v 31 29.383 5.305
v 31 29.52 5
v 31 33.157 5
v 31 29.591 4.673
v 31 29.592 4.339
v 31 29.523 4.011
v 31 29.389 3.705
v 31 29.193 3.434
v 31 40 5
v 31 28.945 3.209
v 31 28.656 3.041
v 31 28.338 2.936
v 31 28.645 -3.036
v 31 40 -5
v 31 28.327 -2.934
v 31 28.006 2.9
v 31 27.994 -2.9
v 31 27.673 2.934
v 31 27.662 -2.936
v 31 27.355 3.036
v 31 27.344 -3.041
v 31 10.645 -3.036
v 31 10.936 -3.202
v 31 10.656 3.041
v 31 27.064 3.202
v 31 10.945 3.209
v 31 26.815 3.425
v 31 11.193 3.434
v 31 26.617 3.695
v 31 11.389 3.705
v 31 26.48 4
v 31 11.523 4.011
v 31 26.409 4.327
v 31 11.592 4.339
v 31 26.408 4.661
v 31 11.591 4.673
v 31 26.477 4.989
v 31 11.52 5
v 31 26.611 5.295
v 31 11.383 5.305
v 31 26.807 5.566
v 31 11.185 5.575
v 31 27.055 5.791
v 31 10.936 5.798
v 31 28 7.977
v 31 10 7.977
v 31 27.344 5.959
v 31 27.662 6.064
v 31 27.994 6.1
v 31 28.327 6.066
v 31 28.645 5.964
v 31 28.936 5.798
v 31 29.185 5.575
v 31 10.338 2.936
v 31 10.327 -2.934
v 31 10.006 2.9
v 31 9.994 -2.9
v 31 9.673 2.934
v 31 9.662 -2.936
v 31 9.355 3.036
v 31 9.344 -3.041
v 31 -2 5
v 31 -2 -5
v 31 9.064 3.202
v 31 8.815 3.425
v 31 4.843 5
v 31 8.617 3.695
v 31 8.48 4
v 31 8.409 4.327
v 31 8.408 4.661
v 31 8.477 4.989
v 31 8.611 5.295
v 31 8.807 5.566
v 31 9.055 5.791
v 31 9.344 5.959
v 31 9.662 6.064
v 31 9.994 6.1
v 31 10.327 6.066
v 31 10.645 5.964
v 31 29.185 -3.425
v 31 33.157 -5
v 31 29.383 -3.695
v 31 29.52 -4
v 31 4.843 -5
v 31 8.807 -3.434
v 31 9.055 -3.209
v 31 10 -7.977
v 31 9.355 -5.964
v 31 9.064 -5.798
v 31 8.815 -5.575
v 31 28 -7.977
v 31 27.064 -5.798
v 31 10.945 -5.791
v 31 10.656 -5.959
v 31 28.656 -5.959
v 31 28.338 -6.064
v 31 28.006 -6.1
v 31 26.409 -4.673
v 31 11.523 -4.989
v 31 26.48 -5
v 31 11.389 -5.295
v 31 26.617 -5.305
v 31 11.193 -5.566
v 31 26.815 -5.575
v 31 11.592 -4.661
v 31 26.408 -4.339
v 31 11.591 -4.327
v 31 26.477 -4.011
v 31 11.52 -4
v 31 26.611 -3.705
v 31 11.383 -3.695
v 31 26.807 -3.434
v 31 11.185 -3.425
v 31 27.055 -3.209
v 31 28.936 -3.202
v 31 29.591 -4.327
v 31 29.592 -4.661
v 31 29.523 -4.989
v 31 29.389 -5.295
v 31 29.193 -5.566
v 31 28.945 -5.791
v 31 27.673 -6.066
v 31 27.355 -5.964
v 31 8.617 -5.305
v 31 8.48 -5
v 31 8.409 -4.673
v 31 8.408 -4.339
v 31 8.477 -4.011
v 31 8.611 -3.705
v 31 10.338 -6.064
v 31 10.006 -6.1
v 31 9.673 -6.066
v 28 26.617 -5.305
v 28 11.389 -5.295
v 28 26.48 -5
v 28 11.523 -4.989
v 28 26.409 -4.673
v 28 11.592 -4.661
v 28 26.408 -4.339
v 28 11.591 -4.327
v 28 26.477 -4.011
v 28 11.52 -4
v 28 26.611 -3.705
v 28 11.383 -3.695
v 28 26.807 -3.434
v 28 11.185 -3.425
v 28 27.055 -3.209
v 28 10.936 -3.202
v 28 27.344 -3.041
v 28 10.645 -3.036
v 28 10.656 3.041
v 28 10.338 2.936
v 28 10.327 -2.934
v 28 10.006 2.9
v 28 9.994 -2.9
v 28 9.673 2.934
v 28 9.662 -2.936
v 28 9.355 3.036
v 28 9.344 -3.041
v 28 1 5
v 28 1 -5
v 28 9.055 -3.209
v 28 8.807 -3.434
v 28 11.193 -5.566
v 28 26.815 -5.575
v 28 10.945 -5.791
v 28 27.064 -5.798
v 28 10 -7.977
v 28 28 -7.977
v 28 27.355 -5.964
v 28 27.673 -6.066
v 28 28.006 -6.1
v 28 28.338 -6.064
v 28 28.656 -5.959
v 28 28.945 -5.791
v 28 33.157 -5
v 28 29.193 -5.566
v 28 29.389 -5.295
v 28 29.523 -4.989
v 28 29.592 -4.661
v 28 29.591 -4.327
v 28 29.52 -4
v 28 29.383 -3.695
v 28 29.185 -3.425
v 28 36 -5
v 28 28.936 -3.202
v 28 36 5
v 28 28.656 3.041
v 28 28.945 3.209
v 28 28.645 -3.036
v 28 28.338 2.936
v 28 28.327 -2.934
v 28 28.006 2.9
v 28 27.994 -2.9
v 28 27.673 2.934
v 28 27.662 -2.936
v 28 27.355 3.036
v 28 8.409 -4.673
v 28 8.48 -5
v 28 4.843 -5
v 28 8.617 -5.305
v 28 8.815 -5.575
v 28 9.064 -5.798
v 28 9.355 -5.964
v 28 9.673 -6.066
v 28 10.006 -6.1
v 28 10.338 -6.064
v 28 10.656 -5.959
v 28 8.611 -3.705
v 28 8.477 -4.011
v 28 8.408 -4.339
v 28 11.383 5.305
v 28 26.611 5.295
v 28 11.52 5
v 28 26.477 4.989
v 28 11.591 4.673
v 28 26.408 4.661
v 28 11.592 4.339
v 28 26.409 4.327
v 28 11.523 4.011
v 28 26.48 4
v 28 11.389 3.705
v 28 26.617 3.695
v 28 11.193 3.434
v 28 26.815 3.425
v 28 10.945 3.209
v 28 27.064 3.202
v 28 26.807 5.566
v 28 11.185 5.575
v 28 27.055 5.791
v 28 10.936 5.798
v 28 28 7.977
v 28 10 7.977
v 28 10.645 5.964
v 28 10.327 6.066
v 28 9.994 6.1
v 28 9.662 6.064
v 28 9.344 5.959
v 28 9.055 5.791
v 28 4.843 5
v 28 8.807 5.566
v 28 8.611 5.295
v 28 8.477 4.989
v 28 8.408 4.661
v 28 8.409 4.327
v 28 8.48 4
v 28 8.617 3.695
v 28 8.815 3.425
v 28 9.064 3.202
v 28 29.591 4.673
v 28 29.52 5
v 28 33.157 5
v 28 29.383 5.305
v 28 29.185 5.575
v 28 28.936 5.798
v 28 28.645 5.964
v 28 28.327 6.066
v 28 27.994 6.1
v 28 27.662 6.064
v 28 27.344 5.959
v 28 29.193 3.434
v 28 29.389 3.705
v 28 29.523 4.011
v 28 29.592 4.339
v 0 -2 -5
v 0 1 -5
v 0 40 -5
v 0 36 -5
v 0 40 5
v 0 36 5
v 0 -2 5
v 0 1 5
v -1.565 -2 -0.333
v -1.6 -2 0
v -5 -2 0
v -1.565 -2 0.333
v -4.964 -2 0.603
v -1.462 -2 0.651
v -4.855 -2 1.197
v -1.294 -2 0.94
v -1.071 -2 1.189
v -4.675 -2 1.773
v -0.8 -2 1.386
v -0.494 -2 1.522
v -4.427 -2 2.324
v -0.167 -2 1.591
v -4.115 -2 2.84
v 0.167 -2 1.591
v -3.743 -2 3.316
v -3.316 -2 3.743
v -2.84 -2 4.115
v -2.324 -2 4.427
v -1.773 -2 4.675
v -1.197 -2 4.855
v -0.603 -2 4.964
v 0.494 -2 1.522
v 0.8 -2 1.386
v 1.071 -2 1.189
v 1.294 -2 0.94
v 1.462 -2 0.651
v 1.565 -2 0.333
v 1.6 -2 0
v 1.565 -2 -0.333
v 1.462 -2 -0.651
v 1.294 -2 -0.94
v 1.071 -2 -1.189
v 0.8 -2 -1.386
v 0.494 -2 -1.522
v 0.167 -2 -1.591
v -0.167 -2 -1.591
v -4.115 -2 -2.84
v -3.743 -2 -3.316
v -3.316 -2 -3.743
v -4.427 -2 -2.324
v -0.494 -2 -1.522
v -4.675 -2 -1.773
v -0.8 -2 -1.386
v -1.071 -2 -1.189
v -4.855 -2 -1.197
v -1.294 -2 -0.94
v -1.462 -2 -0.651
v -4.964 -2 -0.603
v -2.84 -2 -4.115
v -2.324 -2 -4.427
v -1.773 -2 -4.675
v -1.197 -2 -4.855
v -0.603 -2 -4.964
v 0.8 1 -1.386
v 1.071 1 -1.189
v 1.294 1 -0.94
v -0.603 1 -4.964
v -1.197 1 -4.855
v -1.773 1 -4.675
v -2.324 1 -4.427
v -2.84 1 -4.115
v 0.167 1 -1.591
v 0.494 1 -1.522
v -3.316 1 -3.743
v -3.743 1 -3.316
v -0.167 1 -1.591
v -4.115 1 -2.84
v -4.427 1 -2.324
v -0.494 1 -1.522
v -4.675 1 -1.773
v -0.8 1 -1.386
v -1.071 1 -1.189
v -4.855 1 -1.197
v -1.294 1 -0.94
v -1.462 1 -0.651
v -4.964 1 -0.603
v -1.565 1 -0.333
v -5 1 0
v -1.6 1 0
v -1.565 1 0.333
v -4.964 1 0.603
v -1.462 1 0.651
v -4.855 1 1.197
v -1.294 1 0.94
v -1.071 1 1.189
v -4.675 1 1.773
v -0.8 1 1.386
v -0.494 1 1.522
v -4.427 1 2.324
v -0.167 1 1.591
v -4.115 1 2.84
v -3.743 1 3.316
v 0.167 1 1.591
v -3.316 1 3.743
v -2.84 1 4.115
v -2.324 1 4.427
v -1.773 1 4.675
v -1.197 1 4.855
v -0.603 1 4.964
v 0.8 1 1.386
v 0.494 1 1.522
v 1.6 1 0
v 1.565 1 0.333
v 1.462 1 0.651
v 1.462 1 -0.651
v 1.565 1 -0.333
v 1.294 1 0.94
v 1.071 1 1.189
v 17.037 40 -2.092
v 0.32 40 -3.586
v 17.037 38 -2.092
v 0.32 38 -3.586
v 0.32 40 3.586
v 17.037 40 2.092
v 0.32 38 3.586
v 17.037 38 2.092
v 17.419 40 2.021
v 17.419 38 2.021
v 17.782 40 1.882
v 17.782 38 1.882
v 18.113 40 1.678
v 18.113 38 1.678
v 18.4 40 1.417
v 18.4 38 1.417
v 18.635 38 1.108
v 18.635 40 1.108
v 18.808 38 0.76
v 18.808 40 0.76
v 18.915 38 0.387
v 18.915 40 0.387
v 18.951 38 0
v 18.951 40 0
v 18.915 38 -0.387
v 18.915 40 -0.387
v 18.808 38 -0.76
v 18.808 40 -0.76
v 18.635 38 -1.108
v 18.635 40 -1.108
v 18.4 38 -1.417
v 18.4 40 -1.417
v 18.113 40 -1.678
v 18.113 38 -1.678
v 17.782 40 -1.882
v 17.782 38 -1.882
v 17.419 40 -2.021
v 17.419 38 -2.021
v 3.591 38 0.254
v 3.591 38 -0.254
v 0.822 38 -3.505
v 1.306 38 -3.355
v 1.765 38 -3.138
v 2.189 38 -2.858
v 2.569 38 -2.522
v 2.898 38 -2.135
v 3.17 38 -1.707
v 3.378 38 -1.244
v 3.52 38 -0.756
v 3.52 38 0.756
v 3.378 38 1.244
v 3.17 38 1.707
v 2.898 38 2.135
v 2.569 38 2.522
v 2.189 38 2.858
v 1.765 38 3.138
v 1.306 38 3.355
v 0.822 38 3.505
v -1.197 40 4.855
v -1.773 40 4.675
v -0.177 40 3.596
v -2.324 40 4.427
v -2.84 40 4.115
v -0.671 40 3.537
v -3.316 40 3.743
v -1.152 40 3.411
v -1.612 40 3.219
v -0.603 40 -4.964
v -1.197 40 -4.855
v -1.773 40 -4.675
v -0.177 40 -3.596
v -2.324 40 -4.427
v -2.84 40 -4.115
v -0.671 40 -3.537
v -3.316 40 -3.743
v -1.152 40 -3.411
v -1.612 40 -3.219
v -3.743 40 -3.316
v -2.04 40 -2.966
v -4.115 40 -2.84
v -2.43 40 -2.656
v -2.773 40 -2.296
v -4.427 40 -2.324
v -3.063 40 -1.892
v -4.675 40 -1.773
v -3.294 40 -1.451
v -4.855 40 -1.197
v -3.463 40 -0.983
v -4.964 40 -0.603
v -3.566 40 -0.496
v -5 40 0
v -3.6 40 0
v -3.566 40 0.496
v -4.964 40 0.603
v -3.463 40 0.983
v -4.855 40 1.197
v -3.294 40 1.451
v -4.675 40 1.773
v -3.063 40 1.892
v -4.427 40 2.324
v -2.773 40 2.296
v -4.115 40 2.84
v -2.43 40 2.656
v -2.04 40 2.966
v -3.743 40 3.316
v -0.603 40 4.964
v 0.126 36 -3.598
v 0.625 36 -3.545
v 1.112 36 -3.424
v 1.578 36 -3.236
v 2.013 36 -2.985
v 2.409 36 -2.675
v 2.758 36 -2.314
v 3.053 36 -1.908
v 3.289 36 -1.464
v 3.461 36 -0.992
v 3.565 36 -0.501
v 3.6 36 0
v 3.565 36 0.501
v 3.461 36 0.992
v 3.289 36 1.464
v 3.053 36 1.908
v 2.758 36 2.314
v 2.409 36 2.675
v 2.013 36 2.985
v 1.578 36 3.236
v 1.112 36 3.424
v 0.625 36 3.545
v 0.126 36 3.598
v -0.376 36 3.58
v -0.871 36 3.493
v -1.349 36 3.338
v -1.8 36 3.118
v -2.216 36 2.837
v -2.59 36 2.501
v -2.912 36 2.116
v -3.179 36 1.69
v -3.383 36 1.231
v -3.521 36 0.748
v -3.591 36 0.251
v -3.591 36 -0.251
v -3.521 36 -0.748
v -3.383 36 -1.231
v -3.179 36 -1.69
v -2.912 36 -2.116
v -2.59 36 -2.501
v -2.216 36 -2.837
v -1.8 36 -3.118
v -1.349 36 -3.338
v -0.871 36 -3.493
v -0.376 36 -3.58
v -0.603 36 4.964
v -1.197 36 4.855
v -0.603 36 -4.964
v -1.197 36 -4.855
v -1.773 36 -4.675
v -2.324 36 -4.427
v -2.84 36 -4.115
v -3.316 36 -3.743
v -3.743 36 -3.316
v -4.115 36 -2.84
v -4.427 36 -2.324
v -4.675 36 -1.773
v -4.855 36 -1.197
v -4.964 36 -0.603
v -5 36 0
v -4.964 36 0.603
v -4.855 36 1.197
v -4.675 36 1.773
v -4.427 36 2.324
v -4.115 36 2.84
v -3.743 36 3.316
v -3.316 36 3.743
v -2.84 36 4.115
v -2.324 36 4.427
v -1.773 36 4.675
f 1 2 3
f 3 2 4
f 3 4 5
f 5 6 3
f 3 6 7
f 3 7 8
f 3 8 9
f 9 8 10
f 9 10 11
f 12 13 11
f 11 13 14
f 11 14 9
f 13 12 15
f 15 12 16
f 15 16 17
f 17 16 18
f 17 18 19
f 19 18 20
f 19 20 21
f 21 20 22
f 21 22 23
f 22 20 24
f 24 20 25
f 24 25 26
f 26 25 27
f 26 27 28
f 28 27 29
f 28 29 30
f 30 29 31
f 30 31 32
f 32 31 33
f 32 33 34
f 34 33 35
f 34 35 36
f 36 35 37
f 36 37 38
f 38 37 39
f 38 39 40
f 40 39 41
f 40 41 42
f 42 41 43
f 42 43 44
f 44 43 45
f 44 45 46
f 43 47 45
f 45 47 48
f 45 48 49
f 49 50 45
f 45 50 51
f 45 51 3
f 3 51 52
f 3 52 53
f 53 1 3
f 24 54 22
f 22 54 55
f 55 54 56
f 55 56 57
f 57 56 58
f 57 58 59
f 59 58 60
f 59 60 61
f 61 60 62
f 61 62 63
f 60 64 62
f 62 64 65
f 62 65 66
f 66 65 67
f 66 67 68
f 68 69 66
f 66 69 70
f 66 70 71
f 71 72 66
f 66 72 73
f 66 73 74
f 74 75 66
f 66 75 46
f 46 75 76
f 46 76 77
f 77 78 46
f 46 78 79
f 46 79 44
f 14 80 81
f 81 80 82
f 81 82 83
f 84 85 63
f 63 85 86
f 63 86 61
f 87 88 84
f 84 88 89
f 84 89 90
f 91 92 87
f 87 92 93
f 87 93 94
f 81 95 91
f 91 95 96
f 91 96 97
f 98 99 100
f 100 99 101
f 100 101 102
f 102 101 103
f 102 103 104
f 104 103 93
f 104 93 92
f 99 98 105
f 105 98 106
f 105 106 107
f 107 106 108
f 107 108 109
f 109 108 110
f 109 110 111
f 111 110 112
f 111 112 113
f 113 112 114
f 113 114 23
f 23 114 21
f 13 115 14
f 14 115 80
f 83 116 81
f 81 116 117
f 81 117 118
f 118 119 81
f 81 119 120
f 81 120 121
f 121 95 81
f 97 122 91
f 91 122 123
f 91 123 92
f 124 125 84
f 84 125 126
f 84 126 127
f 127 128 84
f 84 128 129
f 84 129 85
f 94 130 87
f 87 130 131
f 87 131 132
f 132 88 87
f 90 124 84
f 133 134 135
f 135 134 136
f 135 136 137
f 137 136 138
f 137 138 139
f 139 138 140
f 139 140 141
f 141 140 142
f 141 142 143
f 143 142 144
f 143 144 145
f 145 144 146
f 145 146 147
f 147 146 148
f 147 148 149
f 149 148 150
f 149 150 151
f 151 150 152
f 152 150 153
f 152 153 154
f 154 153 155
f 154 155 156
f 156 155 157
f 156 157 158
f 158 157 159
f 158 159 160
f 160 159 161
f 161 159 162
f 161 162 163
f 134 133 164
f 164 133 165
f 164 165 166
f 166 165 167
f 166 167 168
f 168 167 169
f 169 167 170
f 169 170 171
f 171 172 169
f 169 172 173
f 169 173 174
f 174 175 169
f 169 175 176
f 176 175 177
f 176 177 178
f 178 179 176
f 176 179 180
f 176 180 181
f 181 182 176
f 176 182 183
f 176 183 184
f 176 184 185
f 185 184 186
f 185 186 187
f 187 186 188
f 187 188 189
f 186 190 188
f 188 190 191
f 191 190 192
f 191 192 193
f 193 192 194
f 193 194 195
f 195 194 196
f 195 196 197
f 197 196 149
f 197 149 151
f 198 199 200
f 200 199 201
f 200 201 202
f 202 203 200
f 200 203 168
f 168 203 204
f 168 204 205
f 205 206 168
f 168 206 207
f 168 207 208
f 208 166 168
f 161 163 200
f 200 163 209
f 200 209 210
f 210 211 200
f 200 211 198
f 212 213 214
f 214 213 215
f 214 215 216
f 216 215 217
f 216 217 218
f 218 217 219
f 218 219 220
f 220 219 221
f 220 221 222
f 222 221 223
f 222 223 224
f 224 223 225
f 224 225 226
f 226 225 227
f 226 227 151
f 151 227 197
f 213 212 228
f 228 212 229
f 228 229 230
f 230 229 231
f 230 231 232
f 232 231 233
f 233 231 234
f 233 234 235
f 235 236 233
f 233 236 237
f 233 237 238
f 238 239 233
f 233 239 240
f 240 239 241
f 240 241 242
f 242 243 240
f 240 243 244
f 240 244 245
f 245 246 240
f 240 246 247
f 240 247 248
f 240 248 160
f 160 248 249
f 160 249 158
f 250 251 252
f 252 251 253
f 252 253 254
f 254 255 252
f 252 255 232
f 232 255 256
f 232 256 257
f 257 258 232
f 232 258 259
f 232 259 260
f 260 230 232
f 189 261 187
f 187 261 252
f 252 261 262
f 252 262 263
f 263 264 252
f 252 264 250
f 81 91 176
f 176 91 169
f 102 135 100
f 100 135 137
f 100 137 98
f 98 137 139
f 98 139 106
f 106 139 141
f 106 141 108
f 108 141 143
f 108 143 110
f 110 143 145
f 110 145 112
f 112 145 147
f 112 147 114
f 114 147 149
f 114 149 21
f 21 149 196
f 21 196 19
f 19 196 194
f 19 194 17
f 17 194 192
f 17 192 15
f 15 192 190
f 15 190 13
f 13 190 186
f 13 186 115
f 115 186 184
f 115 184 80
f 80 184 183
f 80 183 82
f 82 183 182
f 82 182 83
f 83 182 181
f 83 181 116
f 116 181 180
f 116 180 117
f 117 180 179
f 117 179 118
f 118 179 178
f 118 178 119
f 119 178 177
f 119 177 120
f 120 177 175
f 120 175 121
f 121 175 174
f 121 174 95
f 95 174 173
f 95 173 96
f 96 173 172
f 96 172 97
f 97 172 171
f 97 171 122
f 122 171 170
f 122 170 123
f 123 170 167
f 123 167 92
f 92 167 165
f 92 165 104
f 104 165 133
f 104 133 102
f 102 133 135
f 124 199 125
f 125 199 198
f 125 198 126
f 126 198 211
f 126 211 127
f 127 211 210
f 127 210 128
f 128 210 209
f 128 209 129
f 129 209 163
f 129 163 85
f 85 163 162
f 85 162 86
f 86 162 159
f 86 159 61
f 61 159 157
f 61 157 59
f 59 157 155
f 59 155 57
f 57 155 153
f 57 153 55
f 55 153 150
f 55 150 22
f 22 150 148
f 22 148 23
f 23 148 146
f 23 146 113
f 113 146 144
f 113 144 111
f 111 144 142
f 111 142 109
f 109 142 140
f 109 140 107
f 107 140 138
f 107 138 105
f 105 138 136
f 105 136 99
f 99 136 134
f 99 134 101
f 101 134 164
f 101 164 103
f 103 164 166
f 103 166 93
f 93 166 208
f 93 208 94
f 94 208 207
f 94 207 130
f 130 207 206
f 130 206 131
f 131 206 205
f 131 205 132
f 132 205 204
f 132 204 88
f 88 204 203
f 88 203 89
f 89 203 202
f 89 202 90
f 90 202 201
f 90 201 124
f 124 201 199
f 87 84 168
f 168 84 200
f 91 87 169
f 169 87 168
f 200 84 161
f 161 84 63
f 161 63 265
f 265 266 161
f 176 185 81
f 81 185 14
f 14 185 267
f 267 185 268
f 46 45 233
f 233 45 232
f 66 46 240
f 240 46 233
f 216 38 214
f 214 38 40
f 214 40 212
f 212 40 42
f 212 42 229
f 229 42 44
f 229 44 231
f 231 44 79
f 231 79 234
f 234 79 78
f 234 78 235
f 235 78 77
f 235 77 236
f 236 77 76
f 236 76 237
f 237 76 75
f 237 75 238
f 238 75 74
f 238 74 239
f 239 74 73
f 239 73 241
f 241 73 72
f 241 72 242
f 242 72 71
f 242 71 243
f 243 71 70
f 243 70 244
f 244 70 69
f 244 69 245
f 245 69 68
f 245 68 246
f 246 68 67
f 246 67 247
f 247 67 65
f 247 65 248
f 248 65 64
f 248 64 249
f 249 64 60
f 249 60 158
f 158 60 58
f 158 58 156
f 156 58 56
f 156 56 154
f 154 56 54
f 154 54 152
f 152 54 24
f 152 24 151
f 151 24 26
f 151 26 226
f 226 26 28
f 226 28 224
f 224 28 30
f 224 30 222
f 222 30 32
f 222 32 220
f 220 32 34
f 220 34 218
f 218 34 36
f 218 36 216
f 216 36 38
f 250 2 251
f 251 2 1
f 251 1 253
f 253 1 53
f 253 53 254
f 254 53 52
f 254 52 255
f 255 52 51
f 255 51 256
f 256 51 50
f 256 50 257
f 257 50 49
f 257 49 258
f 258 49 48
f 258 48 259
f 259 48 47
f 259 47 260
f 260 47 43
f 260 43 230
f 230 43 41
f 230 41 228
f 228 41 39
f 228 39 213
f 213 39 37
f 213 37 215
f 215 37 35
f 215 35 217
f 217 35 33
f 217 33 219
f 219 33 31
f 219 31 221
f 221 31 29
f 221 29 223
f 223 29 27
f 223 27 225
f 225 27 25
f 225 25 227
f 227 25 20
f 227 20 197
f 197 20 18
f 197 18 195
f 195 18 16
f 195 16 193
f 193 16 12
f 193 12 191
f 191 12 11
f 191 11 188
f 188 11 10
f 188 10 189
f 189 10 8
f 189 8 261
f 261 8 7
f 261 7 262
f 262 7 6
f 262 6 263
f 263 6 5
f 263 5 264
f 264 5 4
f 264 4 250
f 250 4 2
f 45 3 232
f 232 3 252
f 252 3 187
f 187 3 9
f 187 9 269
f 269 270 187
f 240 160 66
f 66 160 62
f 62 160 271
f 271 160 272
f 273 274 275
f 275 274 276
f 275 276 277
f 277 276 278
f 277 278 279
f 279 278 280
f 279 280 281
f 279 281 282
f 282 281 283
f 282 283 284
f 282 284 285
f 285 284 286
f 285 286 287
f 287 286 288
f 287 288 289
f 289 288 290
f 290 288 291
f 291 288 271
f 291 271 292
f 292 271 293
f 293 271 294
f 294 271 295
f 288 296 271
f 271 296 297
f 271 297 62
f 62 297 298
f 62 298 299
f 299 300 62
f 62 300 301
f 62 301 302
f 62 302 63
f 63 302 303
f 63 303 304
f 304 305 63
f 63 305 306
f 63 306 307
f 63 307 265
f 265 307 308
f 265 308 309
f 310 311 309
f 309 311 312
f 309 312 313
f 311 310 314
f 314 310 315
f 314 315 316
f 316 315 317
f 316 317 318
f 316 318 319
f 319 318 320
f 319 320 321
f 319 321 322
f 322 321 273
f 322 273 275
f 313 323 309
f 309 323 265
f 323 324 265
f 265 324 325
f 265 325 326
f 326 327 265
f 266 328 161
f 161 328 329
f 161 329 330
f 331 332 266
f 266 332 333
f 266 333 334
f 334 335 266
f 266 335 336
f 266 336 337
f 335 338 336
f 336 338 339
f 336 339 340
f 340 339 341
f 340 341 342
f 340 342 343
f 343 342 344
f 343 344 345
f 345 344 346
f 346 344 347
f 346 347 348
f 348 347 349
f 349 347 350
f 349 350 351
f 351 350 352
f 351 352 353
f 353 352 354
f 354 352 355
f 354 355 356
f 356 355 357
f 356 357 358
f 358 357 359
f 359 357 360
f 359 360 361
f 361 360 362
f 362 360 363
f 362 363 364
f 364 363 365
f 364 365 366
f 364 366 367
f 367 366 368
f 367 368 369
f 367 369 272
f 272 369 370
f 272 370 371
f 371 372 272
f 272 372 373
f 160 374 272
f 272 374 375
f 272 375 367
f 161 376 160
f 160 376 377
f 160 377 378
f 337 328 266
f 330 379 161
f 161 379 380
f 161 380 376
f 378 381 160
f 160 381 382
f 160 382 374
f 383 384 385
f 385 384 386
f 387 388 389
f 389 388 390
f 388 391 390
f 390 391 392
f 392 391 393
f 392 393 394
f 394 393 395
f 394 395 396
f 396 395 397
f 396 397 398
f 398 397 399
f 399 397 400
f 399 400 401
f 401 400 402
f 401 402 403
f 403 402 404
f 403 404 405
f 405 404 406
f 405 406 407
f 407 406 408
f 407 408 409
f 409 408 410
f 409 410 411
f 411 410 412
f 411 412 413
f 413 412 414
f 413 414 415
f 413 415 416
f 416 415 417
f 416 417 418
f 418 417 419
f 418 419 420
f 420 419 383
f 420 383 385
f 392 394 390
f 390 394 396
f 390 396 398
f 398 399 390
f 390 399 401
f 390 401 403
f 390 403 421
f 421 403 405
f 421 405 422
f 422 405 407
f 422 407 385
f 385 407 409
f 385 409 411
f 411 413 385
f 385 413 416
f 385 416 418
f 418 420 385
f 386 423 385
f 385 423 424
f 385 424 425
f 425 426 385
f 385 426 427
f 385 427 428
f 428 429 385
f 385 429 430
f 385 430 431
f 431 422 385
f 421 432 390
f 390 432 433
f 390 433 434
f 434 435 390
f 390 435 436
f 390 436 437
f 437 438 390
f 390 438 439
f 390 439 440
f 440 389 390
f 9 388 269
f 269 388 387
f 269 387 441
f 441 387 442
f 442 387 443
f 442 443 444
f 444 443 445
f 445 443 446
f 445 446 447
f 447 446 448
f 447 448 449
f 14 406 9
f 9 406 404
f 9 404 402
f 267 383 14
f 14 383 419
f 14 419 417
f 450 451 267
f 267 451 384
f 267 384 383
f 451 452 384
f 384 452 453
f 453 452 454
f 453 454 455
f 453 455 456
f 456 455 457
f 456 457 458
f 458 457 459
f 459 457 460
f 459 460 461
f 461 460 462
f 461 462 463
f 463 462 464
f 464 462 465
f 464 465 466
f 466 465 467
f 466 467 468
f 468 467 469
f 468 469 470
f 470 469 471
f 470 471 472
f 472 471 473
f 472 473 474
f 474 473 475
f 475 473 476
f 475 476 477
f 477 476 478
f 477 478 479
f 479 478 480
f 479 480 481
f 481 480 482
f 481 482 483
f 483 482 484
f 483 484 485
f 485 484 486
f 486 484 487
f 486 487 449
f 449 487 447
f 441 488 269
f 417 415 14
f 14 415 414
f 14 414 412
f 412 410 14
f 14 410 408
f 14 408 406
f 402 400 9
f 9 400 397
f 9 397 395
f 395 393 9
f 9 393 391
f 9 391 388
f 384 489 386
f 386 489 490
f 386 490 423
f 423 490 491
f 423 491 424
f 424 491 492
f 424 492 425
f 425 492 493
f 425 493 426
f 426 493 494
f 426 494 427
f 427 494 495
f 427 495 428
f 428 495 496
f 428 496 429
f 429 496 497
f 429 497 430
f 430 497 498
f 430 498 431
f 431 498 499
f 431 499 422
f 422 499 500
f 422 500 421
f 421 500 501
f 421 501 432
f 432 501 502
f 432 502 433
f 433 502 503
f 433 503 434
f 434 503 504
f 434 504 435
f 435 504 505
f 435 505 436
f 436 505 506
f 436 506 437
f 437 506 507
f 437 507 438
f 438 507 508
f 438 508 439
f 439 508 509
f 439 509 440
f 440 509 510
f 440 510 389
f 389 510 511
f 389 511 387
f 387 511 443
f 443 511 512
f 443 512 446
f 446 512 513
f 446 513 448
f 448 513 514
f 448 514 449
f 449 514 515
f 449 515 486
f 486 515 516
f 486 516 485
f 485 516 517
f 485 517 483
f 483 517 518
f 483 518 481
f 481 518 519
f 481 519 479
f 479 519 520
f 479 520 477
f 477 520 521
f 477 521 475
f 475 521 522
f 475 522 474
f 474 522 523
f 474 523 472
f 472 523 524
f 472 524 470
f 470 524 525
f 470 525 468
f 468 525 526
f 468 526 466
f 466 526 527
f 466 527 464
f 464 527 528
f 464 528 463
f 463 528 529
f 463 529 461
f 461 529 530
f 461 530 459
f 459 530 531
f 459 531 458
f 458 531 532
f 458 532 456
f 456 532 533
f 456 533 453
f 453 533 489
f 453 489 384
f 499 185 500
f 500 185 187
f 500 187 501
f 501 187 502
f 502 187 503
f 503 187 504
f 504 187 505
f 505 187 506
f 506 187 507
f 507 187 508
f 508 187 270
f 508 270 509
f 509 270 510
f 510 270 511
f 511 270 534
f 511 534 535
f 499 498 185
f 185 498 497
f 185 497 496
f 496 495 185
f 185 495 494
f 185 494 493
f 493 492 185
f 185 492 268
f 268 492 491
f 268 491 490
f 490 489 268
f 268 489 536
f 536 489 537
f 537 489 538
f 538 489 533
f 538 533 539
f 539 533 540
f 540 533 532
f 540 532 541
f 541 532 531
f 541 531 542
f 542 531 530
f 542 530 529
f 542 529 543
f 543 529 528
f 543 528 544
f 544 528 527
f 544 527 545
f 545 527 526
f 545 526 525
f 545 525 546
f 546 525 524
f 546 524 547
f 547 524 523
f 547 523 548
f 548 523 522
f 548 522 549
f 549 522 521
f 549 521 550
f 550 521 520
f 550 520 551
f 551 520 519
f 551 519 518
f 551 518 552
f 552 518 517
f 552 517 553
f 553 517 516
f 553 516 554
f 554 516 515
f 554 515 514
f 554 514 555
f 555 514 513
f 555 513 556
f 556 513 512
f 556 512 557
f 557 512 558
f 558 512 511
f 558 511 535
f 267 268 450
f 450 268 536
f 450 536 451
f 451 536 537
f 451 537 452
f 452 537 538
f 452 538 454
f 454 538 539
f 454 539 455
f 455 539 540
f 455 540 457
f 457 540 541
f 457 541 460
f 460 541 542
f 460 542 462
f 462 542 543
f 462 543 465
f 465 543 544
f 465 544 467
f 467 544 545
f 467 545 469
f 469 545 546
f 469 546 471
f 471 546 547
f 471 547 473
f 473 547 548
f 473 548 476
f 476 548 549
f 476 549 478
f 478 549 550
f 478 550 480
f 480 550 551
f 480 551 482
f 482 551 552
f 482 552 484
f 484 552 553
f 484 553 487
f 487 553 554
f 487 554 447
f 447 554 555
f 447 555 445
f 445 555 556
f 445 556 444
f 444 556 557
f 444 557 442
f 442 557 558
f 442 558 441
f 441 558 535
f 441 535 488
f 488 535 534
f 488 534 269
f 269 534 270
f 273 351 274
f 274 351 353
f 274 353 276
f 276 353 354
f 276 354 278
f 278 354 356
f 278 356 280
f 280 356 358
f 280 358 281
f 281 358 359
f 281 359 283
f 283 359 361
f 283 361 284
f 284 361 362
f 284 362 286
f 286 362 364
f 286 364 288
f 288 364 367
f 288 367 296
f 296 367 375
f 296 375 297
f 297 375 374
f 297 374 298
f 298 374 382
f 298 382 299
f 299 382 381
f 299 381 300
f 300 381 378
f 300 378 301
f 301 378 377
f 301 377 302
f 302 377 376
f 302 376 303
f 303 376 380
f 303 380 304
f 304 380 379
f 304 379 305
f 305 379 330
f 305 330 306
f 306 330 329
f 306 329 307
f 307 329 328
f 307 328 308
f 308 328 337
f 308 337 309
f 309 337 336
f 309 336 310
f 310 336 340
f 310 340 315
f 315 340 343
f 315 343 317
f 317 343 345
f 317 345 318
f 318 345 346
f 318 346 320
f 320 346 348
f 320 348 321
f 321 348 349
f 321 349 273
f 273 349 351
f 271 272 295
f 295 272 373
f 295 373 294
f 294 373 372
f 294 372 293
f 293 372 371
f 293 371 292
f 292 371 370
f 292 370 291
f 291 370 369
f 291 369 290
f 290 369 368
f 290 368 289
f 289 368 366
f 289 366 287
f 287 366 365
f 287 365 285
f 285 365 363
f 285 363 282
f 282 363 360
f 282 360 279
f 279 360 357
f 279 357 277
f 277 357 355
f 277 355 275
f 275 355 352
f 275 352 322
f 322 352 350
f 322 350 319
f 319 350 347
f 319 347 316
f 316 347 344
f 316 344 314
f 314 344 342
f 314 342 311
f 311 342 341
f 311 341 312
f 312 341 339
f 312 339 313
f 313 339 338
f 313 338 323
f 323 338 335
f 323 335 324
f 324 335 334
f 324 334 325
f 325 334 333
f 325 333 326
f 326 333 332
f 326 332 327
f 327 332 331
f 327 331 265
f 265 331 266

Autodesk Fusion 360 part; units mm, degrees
sketch "スケッチ1" plane through (0, 0, 0) normal (0, 1, 0) x (1, 0, 0)
  circle A0 centre (0, 0) radius 1.6
  circle A1 centre (0, 0) radius 5
  line L0 (0, 5) -> (30, 5)
  line L1 (30, 5) -> (30, -5)
  line L2 (30, -5) -> (0, -5)
  line L3 (0, -5) -> (0, 5)
  dimension "d1" = 3.2
  dimension "d2" = 30
  dimension "d3" = 10
extrude "押し出し1" add sketch "スケッチ1" along normal blind 3 contours A0 A1 L3 | A0 A1 L3 | A1 L0 L1 L2
sketch "スケッチ2" plane through (0, 3, 0) normal (0, 1, 0) x (-1, 0, 0)
  circle A0 centre (0, 0) radius 1.6
  arc A1 (0, -5) -> (0, 5) centre (0, 0) ccw
  line L0 (0, 5) -> (-30, 5)
  line L1 (-30, 5) -> (-30, -5)
  line L2 (-30, -5) -> (0, -5)
  line L3 (-30, -5) -> (-27, -5)
  line L4 (-27, -5) -> (-27, 5)
  line L5 (-27, 5) -> (-30, 5)
  line L6 (-30, 5) -> (-30, -5)
  dimension "d6" = 3
  dimension "d7" = 10
extrude "押し出し2" add sketch "スケッチ2" along normal blind 30 contours L0 L1 L2 L3 L4 L5 L6
sketch "スケッチ3" plane through (0, 33, 0) normal (0, 1, 0) x (-1, 0, 0)
  line L0 (-30, 5) -> (-30, -5)
  line L1 (-30, -5) -> (-27, -5)
  line L2 (-27, -5) -> (-27, 5)
  line L3 (-27, 5) -> (-30, 5)
  line L4 (-27, 5) -> (-27, -5)
  line L5 (-27, -5) -> (0, -5)
  arc A0 (0, -5) -> (0, 5) centre (0, 0) ccw
  line L6 (0, 5) -> (-27, 5)
  circle A1 centre (0, 0) radius 1.6
extrude "押し出し3" add sketch "スケッチ3" along normal blind 3
extrude "押し出し4" add 1 faces at (19.5096, 36, -0.1572) along direction (0, 1, 0) blind 3
extrude "押し出し5" cut 1 faces at (18.5333, 33, 0) along direction (0, 1, 0) blind 3
extrude "押し出し6" add 1 faces at (19.5096, 39, -0.1572) along direction (0, 1, 0) blind 2
extrude "押し出し7" cut 1 faces at (18.5333, 36, 0) along direction (0, 1, 0) blind 2
extrude "押し出し8" add 1 faces at (18.5333, 38, 0) along direction (0, -1, 0) blind 2
extrude "押し出し9" cut 1 faces at (19.5096, 41, -0.1572) along direction (0, -1, 0) blind 2
extrude "押し出し10" add 1 faces at (19.5096, 39, -0.1572) along direction (0, 1, 0) blind 1
sketch "スケッチ4" plane through (0, 40, 0) normal (0, 1, 0) x (-1, 0, 0)
  circle A0 centre (0, 0) radius 1.6
  line L0 (0, 5) -> (-30, 5)
  line L1 (-30, 5) -> (-30, -5)
  line L2 (-30, -5) -> (0, -5)
  arc A1 (0, -5) -> (0, 5) centre (0, 0) ccw
  circle A2 centre (0, 0) radius 3.6
  dimension "d26" = 7.2
extrude "押し出し11" cut sketch "スケッチ4" against normal blind 10 contours A2
sketch "スケッチ5" plane through (0, 40, 0) normal (0, 1, 0) x (-1, 0, 0)
  circle A0 centre (0, 0) radius 3.6
  line L0 (0, 5) -> (-30, 5)
  line L1 (-30, 5) -> (-30, -5)
  line L2 (-30, -5) -> (0, -5)
  arc A1 (0, -5) -> (0, 5) centre (0, 0) ccw
  circle A2 centre (0, 0) radius 3.6
  line L3 (0, 0) -> (-2.3505, 0)
  line L4 (-2.3505, 0) -> (-16.8505, 0)
  circle A3 centre (-16.8505, 0) radius 2.1
  line L5 (-17.0374, -2.0917) -> (-0.3205, -3.5857)
  line L6 (-17.0374, 2.0917) -> (-0.3205, 3.5857)
  dimension "d29" = 14.5
  dimension "d30" = 4.2
extrude "押し出し12" cut sketch "スケッチ5" against normal blind 2 contours A0 A2 L4 A3 L6 | A0 A2 L4 A3 L5 | A3
extrude "押し出し13" cut 1 faces at (18.5333, 3, 0) along direction (0, -1, 0) blind 2
extrude "押し出し14" add 1 faces at (20.5333, 0, 0) along direction (0, -1, 0) blind 2
sketch "スケッチ6" plane through (30, 0, 0) normal (1, 0, 0) x (0, 0, -1)
  line L0 (-5, 40) -> (-5, -2)
  line L1 (-5, -2) -> (5, -2)
  line L2 (5, -2) -> (5, 40)
  line L3 (5, 40) -> (-5, 40)
  line L4 (5, -2) -> (5, -1)
  line L5 (-5, 40) -> (5, -2)
  line L6 (12, 26.5) -> (-12, 26.5)
  line L7 (-12, 26.5) -> (-12, 11.5)
  line L8 (-12, 11.5) -> (12, 11.5)
  line L9 (12, 11.5) -> (12, 26.5)
  line L10 (12, 26.5) -> (-12, 11.5) construction
  line L11 (-12, 26.5) -> (12, 11.5) construction
  line L12 (-12, 26.5) -> (-9, 26.5)
  line L13 (-9, 26.5) -> (-9, 23.5)
  line L14 (-9, 23.5) -> (-12, 23.5)
  line L15 (-12, 23.5) -> (-12, 26.5)
  line L16 (-12, 11.5) -> (-9, 11.5)
  line L17 (-9, 11.5) -> (-9, 14.5)
  line L18 (-9, 14.5) -> (-12, 14.5)
  line L19 (-12, 14.5) -> (-12, 11.5)
  line L20 (12, 26.5) -> (9, 26.5)
  line L21 (9, 26.5) -> (9, 23.5)
  line L22 (9, 23.5) -> (12, 23.5)
  line L23 (12, 23.5) -> (12, 26.5)
  line L24 (12, 11.5) -> (9, 11.5)
  line L25 (9, 11.5) -> (9, 14.5)
  line L26 (9, 14.5) -> (12, 14.5)
  line L27 (12, 14.5) -> (12, 11.5)
  circle A0 centre (-9, 23.5) radius 1.6
  circle A1 centre (-9, 14.5) radius 1.6
  circle A2 centre (9, 14.5) radius 1.6
  circle A3 centre (9, 23.5) radius 1.6
  point P0 (0, 19)
  dimension "d37" = 24
  dimension "d38" = 15
  dimension "d39" = 3
  dimension "d40" = 3
  dimension "d41" = 3
  dimension "d42" = 3
  dimension "d43" = 3
  dimension "d44" = 3
  dimension "d45" = 3
  dimension "d46" = 3
  dimension "d47" = 3.2
  dimension "d48" = 3.2
  dimension "d49" = 3.2
  dimension "d50" = 3.2
extrude "押し出し15" add sketch "スケッチ6" against normal blind 3 contours L0 L6 L7 L8 L13 L14 L17 L18 A0 A1 | L6 L7 L12 L13 L14 L15 A0 | L2 L6 L8 L9 L21 L22 L25 L26 A2 A3 | L7 L8 L16 L17 L18 L19 A1 | L6 L9 L20 L21 L22 L23 A3 | L8 L9 L24 L25 L26 L27 A2
chamfer "面取り1" distance 2 angle 45 4 edges at (28.5, 11.5, -12) (28.5, 26.5, -12) (28.5, 26.5, 12) (28.5, 11.5, 12)
sketch "スケッチ7" plane through (30, 0, 0) normal (1, 0, 0) x (0, 0, -1)
  circle A0 centre (-9, 14.5) radius 1.6
  circle A1 centre (-9, 23.5) radius 1.6
  circle A2 centre (9, 23.5) radius 1.6
  circle A3 centre (9, 14.5) radius 1.6
  line L0 (-12, 13.5) -> (-10, 11.5)
  line L1 (-10, 11.5) -> (-5, 11.5)
  line L2 (-5, 11.5) -> (-5, -2)
  line L3 (-5, -2) -> (5, -2)
  line L4 (5, -2) -> (5, 11.5)
  line L5 (5, 11.5) -> (10, 11.5)
  line L6 (10, 11.5) -> (12, 13.5)
  line L7 (12, 13.5) -> (12, 24.5)
  line L8 (12, 24.5) -> (10, 26.5)
  line L9 (10, 26.5) -> (5, 26.5)
  line L10 (5, 26.5) -> (5, 40)
  line L11 (5, 40) -> (-5, 40)
  line L12 (-5, 40) -> (-5, 26.5)
  line L13 (-5, 26.5) -> (-10, 26.5)
  line L14 (-10, 26.5) -> (-12, 24.5)
  line L15 (-12, 24.5) -> (-12, 13.5)
  line L16 (-12, 19) -> (12, 19)
  line L17 (0, 19) -> (0, 15.95)
  line L18 (0, 15.95) -> (4, 15.95)
  line L19 (0, 15.95) -> (-4, 15.95)
  line L20 (-4, 15.95) -> (4, 15.95)
  line L21 (4, 15.95) -> (4, 10.95)
  line L22 (4, 10.95) -> (-4, 10.95)
  line L23 (-4, 10.95) -> (-4, 15.95)
  line L24 (-4, 15.95) -> (-4, 22.05)
  line L25 (-4, 22.05) -> (4, 22.05)
  line L26 (4, 22.05) -> (4, 27.05)
  line L27 (4, 27.05) -> (-4, 27.05)
  line L28 (-4, 27.05) -> (-4, 22.05)
  dimension "d54" = 3.05
  dimension "d55" = 4
  dimension "d56" = 4
  dimension "d57" = 8
  dimension "d58" = 5
  dimension "d59" = 6.1
  dimension "d60" = 8
  dimension "d61" = 5
extrude "押し出し16" cut sketch "スケッチ7" against normal blind 11 contours L25 L26 L27 L28 | L18 L19 L20 L21 L22 L23
chamfer "面取り2" distance 2 angle 45 4 edges at (28.5, 26.5, 5) (28.5, 26.5, -5) (28.5, 11.5, -5) (28.5, 11.5, 5)
extrude "押し出し17" cut 1 faces at (27, 4.5, -1.6667) along direction (1, 0, 0) blind 1
extrude "押し出し18" add 1 faces at (30, 3.5, -1.6667) along direction (1, 0, 0) blind 1
sketch "スケッチ8" plane through (31, 0, 0) normal (1, 0, 0) x (0, 0, -1)
  line L0 (4, 22.05) -> (-4, 22.05)
  line L1 (-4, 22.05) -> (-4, 27.05)
  line L2 (-4, 27.05) -> (4, 27.05)
  line L3 (4, 27.05) -> (4, 22.05)
  line L4 (4, 15.95) -> (4, 10.95)
  line L5 (4, 10.95) -> (-4, 10.95)
  line L6 (-4, 10.95) -> (-4, 15.95)
  line L7 (-4, 15.95) -> (4, 15.95)
  circle A0 centre (-9, 14.5) radius 1.6
  circle A1 centre (-9, 23.5) radius 1.6
  circle A2 centre (9, 23.5) radius 1.6
  circle A3 centre (9, 14.5) radius 1.6
  line L8 (-12, 13.5) -> (-10, 11.5)
  line L9 (-10, 11.5) -> (-7, 11.5)
  line L10 (-7, 11.5) -> (-5, 9.5)
  line L11 (-5, 9.5) -> (-5, -2)
  line L12 (-5, -2) -> (5, -2)
  line L13 (5, -2) -> (5, 9.5)
  line L14 (5, 9.5) -> (7, 11.5)
  line L15 (7, 11.5) -> (10, 11.5)
  line L16 (10, 11.5) -> (12, 13.5)
  line L17 (12, 13.5) -> (12, 24.5)
  line L18 (12, 24.5) -> (10, 26.5)
  line L19 (10, 26.5) -> (7, 26.5)
  line L20 (7, 26.5) -> (5, 28.5)
  line L21 (5, 28.5) -> (5, 40)
  line L22 (5, 40) -> (-5, 40)
  line L23 (-5, 40) -> (-5, 28.5)
  line L24 (-5, 28.5) -> (-7, 26.5)
  line L25 (-7, 26.5) -> (-10, 26.5)
  line L26 (-10, 26.5) -> (-12, 24.5)
  line L27 (-12, 24.5) -> (-12, 13.5)
  line L28 (-5, 28.5) -> (-5, 9.5)
  line L29 (5, 28.5) -> (5, 9.5)
extrude "押し出し19" cut sketch "スケッチ8" against normal blind 10 contours L8 L9 L10 L24 L25 L26 L27 L28 | L14 L15 L16 L17 L18 L19 L20 L29
sketch "スケッチ9" plane through (31, 0, 0) normal (1, 0, 0) x (0, 0, -1)
  line L0 (-5, 40) -> (-5, -2)
  line L1 (-5, -2) -> (5, -2)
  line L2 (5, -2) -> (5, 40)
  line L3 (5, 40) -> (-5, 40)
  line L4 (4, 22.05) -> (-4, 22.05)
  line L5 (-4, 22.05) -> (-4, 27.05)
  line L6 (-4, 27.05) -> (4, 27.05)
  line L7 (4, 27.05) -> (4, 22.05)
  line L8 (4, 15.95) -> (4, 10.95)
  line L9 (4, 10.95) -> (-4, 10.95)
  line L10 (-4, 10.95) -> (-4, 15.95)
  line L11 (-4, 15.95) -> (4, 15.95)
  line L12 (-4, 27.05) -> (4, 27.05)
  line L13 (4, 27.05) -> (4, 22.05)
  line L14 (4, 22.05) -> (-4, 22.05)
  line L15 (-4, 22.05) -> (-4, 27.05)
  line L16 (-4, 15.95) -> (4, 15.95)
  line L17 (4, 15.95) -> (4, 10.95)
  line L18 (4, 10.95) -> (-4, 10.95)
  line L19 (-4, 10.95) -> (-4, 15.95)
extrude "押し出し20" add sketch "スケッチ9" against normal blind 3 contours L4 L5 L6 L7 L12 L13 L14 L15 | L8 L9 L10 L11 L16 L17 L18 L19
sketch "スケッチ10" plane through (31, 0, 0) normal (1, 0, 0) x (0, 0, -1)
  line L0 (-5, 40) -> (-5, -2)
  line L1 (-5, -2) -> (5, -2)
  line L2 (5, -2) -> (5, 40)
  line L3 (5, 40) -> (-5, 40)
  line L4 (-5, 40) -> (5, -2)
  line L5 (4.5, 28) -> (-4.5, 28)
  line L6 (-4.5, 28) -> (-4.5, 10)
  line L7 (-4.5, 10) -> (4.5, 10)
  line L8 (4.5, 10) -> (4.5, 28)
  line L9 (4.5, 28) -> (-4.5, 10) construction
  line L10 (-4.5, 28) -> (4.5, 10) construction
  circle A0 centre (-4.5, 28) radius 1.6
  circle A1 centre (4.5, 28) radius 1.6
  circle A2 centre (-4.5, 10) radius 1.6
  circle A3 centre (4.5, 10) radius 1.6
  line L11 (-4.5, 28) -> (-7.3284, 30.8284)
  line L12 (-4.5, 28) -> (-0.5, 28) construction
  line L13 (-7.3284, 30.8284) -> (-5, 33.1569)
  line L14 (-4.5, 28) -> (-12, 28)
  line L15 (-7.3284, 30.8284) -> (-10.1569, 28)
  line L16 (-5, 33.1569) -> (-7.9773, 28)
  line L17 (-5, 33.1569) -> (0.9546, 33.1569) construction
  line L18 (-4.5, 10) -> (-11, 10)
  line L19 (-7.9773, 28) -> (-7.9773, 10)
  line L20 (-7.9773, 10) -> (-5, 4.8431)
  line L21 (-7.9773, 10) -> (-2.0227, 10) construction
  line L22 (4.5, 10) -> (11, 10)
  line L23 (0, 19) -> (0, 15)
  line L24 (5, 33.1569) -> (7.9773, 28)
  line L25 (7.9773, 28) -> (7.9773, 10)
  line L26 (7.9773, 10) -> (5, 4.8431)
  point P0 (0, 19)
  dimension "d73" = 9
  dimension "d74" = 18
  dimension "d75" = 3.2
  dimension "d76" = 3.2
  dimension "d77" = 3.2
  dimension "d78" = 3.2
  dimension "d79" = 135
  dimension "d80" = 4
  dimension "d81" = 120
  dimension "d82" = 60
extrude "押し出し21" add sketch "スケッチ10" against normal blind 3 contours L0 A0 L11 L16 | A0 L11 L14 L16 | L2 A1 A3 L22 L24 L25 | L0 A0 A2 L14 L18 L19 | L0 A2 L18 L20 | L2 A3 L22 L26
extrude "押し出し22" cut sketch "スケッチ10" against normal blind 3.5 contours L0 L5 A0 L11 | L2 L5 L8 A1 | L5 L8 A1 | L5 L6 A0 | L0 L11 L14 | L0 L6 A0 L14 | L0 L7 A2 L18 | L6 L7 A2 | L7 L8 A3 | L2 L7 A3 L22 | L2 L8 A3 L22 | L0 L6 A2 L18
